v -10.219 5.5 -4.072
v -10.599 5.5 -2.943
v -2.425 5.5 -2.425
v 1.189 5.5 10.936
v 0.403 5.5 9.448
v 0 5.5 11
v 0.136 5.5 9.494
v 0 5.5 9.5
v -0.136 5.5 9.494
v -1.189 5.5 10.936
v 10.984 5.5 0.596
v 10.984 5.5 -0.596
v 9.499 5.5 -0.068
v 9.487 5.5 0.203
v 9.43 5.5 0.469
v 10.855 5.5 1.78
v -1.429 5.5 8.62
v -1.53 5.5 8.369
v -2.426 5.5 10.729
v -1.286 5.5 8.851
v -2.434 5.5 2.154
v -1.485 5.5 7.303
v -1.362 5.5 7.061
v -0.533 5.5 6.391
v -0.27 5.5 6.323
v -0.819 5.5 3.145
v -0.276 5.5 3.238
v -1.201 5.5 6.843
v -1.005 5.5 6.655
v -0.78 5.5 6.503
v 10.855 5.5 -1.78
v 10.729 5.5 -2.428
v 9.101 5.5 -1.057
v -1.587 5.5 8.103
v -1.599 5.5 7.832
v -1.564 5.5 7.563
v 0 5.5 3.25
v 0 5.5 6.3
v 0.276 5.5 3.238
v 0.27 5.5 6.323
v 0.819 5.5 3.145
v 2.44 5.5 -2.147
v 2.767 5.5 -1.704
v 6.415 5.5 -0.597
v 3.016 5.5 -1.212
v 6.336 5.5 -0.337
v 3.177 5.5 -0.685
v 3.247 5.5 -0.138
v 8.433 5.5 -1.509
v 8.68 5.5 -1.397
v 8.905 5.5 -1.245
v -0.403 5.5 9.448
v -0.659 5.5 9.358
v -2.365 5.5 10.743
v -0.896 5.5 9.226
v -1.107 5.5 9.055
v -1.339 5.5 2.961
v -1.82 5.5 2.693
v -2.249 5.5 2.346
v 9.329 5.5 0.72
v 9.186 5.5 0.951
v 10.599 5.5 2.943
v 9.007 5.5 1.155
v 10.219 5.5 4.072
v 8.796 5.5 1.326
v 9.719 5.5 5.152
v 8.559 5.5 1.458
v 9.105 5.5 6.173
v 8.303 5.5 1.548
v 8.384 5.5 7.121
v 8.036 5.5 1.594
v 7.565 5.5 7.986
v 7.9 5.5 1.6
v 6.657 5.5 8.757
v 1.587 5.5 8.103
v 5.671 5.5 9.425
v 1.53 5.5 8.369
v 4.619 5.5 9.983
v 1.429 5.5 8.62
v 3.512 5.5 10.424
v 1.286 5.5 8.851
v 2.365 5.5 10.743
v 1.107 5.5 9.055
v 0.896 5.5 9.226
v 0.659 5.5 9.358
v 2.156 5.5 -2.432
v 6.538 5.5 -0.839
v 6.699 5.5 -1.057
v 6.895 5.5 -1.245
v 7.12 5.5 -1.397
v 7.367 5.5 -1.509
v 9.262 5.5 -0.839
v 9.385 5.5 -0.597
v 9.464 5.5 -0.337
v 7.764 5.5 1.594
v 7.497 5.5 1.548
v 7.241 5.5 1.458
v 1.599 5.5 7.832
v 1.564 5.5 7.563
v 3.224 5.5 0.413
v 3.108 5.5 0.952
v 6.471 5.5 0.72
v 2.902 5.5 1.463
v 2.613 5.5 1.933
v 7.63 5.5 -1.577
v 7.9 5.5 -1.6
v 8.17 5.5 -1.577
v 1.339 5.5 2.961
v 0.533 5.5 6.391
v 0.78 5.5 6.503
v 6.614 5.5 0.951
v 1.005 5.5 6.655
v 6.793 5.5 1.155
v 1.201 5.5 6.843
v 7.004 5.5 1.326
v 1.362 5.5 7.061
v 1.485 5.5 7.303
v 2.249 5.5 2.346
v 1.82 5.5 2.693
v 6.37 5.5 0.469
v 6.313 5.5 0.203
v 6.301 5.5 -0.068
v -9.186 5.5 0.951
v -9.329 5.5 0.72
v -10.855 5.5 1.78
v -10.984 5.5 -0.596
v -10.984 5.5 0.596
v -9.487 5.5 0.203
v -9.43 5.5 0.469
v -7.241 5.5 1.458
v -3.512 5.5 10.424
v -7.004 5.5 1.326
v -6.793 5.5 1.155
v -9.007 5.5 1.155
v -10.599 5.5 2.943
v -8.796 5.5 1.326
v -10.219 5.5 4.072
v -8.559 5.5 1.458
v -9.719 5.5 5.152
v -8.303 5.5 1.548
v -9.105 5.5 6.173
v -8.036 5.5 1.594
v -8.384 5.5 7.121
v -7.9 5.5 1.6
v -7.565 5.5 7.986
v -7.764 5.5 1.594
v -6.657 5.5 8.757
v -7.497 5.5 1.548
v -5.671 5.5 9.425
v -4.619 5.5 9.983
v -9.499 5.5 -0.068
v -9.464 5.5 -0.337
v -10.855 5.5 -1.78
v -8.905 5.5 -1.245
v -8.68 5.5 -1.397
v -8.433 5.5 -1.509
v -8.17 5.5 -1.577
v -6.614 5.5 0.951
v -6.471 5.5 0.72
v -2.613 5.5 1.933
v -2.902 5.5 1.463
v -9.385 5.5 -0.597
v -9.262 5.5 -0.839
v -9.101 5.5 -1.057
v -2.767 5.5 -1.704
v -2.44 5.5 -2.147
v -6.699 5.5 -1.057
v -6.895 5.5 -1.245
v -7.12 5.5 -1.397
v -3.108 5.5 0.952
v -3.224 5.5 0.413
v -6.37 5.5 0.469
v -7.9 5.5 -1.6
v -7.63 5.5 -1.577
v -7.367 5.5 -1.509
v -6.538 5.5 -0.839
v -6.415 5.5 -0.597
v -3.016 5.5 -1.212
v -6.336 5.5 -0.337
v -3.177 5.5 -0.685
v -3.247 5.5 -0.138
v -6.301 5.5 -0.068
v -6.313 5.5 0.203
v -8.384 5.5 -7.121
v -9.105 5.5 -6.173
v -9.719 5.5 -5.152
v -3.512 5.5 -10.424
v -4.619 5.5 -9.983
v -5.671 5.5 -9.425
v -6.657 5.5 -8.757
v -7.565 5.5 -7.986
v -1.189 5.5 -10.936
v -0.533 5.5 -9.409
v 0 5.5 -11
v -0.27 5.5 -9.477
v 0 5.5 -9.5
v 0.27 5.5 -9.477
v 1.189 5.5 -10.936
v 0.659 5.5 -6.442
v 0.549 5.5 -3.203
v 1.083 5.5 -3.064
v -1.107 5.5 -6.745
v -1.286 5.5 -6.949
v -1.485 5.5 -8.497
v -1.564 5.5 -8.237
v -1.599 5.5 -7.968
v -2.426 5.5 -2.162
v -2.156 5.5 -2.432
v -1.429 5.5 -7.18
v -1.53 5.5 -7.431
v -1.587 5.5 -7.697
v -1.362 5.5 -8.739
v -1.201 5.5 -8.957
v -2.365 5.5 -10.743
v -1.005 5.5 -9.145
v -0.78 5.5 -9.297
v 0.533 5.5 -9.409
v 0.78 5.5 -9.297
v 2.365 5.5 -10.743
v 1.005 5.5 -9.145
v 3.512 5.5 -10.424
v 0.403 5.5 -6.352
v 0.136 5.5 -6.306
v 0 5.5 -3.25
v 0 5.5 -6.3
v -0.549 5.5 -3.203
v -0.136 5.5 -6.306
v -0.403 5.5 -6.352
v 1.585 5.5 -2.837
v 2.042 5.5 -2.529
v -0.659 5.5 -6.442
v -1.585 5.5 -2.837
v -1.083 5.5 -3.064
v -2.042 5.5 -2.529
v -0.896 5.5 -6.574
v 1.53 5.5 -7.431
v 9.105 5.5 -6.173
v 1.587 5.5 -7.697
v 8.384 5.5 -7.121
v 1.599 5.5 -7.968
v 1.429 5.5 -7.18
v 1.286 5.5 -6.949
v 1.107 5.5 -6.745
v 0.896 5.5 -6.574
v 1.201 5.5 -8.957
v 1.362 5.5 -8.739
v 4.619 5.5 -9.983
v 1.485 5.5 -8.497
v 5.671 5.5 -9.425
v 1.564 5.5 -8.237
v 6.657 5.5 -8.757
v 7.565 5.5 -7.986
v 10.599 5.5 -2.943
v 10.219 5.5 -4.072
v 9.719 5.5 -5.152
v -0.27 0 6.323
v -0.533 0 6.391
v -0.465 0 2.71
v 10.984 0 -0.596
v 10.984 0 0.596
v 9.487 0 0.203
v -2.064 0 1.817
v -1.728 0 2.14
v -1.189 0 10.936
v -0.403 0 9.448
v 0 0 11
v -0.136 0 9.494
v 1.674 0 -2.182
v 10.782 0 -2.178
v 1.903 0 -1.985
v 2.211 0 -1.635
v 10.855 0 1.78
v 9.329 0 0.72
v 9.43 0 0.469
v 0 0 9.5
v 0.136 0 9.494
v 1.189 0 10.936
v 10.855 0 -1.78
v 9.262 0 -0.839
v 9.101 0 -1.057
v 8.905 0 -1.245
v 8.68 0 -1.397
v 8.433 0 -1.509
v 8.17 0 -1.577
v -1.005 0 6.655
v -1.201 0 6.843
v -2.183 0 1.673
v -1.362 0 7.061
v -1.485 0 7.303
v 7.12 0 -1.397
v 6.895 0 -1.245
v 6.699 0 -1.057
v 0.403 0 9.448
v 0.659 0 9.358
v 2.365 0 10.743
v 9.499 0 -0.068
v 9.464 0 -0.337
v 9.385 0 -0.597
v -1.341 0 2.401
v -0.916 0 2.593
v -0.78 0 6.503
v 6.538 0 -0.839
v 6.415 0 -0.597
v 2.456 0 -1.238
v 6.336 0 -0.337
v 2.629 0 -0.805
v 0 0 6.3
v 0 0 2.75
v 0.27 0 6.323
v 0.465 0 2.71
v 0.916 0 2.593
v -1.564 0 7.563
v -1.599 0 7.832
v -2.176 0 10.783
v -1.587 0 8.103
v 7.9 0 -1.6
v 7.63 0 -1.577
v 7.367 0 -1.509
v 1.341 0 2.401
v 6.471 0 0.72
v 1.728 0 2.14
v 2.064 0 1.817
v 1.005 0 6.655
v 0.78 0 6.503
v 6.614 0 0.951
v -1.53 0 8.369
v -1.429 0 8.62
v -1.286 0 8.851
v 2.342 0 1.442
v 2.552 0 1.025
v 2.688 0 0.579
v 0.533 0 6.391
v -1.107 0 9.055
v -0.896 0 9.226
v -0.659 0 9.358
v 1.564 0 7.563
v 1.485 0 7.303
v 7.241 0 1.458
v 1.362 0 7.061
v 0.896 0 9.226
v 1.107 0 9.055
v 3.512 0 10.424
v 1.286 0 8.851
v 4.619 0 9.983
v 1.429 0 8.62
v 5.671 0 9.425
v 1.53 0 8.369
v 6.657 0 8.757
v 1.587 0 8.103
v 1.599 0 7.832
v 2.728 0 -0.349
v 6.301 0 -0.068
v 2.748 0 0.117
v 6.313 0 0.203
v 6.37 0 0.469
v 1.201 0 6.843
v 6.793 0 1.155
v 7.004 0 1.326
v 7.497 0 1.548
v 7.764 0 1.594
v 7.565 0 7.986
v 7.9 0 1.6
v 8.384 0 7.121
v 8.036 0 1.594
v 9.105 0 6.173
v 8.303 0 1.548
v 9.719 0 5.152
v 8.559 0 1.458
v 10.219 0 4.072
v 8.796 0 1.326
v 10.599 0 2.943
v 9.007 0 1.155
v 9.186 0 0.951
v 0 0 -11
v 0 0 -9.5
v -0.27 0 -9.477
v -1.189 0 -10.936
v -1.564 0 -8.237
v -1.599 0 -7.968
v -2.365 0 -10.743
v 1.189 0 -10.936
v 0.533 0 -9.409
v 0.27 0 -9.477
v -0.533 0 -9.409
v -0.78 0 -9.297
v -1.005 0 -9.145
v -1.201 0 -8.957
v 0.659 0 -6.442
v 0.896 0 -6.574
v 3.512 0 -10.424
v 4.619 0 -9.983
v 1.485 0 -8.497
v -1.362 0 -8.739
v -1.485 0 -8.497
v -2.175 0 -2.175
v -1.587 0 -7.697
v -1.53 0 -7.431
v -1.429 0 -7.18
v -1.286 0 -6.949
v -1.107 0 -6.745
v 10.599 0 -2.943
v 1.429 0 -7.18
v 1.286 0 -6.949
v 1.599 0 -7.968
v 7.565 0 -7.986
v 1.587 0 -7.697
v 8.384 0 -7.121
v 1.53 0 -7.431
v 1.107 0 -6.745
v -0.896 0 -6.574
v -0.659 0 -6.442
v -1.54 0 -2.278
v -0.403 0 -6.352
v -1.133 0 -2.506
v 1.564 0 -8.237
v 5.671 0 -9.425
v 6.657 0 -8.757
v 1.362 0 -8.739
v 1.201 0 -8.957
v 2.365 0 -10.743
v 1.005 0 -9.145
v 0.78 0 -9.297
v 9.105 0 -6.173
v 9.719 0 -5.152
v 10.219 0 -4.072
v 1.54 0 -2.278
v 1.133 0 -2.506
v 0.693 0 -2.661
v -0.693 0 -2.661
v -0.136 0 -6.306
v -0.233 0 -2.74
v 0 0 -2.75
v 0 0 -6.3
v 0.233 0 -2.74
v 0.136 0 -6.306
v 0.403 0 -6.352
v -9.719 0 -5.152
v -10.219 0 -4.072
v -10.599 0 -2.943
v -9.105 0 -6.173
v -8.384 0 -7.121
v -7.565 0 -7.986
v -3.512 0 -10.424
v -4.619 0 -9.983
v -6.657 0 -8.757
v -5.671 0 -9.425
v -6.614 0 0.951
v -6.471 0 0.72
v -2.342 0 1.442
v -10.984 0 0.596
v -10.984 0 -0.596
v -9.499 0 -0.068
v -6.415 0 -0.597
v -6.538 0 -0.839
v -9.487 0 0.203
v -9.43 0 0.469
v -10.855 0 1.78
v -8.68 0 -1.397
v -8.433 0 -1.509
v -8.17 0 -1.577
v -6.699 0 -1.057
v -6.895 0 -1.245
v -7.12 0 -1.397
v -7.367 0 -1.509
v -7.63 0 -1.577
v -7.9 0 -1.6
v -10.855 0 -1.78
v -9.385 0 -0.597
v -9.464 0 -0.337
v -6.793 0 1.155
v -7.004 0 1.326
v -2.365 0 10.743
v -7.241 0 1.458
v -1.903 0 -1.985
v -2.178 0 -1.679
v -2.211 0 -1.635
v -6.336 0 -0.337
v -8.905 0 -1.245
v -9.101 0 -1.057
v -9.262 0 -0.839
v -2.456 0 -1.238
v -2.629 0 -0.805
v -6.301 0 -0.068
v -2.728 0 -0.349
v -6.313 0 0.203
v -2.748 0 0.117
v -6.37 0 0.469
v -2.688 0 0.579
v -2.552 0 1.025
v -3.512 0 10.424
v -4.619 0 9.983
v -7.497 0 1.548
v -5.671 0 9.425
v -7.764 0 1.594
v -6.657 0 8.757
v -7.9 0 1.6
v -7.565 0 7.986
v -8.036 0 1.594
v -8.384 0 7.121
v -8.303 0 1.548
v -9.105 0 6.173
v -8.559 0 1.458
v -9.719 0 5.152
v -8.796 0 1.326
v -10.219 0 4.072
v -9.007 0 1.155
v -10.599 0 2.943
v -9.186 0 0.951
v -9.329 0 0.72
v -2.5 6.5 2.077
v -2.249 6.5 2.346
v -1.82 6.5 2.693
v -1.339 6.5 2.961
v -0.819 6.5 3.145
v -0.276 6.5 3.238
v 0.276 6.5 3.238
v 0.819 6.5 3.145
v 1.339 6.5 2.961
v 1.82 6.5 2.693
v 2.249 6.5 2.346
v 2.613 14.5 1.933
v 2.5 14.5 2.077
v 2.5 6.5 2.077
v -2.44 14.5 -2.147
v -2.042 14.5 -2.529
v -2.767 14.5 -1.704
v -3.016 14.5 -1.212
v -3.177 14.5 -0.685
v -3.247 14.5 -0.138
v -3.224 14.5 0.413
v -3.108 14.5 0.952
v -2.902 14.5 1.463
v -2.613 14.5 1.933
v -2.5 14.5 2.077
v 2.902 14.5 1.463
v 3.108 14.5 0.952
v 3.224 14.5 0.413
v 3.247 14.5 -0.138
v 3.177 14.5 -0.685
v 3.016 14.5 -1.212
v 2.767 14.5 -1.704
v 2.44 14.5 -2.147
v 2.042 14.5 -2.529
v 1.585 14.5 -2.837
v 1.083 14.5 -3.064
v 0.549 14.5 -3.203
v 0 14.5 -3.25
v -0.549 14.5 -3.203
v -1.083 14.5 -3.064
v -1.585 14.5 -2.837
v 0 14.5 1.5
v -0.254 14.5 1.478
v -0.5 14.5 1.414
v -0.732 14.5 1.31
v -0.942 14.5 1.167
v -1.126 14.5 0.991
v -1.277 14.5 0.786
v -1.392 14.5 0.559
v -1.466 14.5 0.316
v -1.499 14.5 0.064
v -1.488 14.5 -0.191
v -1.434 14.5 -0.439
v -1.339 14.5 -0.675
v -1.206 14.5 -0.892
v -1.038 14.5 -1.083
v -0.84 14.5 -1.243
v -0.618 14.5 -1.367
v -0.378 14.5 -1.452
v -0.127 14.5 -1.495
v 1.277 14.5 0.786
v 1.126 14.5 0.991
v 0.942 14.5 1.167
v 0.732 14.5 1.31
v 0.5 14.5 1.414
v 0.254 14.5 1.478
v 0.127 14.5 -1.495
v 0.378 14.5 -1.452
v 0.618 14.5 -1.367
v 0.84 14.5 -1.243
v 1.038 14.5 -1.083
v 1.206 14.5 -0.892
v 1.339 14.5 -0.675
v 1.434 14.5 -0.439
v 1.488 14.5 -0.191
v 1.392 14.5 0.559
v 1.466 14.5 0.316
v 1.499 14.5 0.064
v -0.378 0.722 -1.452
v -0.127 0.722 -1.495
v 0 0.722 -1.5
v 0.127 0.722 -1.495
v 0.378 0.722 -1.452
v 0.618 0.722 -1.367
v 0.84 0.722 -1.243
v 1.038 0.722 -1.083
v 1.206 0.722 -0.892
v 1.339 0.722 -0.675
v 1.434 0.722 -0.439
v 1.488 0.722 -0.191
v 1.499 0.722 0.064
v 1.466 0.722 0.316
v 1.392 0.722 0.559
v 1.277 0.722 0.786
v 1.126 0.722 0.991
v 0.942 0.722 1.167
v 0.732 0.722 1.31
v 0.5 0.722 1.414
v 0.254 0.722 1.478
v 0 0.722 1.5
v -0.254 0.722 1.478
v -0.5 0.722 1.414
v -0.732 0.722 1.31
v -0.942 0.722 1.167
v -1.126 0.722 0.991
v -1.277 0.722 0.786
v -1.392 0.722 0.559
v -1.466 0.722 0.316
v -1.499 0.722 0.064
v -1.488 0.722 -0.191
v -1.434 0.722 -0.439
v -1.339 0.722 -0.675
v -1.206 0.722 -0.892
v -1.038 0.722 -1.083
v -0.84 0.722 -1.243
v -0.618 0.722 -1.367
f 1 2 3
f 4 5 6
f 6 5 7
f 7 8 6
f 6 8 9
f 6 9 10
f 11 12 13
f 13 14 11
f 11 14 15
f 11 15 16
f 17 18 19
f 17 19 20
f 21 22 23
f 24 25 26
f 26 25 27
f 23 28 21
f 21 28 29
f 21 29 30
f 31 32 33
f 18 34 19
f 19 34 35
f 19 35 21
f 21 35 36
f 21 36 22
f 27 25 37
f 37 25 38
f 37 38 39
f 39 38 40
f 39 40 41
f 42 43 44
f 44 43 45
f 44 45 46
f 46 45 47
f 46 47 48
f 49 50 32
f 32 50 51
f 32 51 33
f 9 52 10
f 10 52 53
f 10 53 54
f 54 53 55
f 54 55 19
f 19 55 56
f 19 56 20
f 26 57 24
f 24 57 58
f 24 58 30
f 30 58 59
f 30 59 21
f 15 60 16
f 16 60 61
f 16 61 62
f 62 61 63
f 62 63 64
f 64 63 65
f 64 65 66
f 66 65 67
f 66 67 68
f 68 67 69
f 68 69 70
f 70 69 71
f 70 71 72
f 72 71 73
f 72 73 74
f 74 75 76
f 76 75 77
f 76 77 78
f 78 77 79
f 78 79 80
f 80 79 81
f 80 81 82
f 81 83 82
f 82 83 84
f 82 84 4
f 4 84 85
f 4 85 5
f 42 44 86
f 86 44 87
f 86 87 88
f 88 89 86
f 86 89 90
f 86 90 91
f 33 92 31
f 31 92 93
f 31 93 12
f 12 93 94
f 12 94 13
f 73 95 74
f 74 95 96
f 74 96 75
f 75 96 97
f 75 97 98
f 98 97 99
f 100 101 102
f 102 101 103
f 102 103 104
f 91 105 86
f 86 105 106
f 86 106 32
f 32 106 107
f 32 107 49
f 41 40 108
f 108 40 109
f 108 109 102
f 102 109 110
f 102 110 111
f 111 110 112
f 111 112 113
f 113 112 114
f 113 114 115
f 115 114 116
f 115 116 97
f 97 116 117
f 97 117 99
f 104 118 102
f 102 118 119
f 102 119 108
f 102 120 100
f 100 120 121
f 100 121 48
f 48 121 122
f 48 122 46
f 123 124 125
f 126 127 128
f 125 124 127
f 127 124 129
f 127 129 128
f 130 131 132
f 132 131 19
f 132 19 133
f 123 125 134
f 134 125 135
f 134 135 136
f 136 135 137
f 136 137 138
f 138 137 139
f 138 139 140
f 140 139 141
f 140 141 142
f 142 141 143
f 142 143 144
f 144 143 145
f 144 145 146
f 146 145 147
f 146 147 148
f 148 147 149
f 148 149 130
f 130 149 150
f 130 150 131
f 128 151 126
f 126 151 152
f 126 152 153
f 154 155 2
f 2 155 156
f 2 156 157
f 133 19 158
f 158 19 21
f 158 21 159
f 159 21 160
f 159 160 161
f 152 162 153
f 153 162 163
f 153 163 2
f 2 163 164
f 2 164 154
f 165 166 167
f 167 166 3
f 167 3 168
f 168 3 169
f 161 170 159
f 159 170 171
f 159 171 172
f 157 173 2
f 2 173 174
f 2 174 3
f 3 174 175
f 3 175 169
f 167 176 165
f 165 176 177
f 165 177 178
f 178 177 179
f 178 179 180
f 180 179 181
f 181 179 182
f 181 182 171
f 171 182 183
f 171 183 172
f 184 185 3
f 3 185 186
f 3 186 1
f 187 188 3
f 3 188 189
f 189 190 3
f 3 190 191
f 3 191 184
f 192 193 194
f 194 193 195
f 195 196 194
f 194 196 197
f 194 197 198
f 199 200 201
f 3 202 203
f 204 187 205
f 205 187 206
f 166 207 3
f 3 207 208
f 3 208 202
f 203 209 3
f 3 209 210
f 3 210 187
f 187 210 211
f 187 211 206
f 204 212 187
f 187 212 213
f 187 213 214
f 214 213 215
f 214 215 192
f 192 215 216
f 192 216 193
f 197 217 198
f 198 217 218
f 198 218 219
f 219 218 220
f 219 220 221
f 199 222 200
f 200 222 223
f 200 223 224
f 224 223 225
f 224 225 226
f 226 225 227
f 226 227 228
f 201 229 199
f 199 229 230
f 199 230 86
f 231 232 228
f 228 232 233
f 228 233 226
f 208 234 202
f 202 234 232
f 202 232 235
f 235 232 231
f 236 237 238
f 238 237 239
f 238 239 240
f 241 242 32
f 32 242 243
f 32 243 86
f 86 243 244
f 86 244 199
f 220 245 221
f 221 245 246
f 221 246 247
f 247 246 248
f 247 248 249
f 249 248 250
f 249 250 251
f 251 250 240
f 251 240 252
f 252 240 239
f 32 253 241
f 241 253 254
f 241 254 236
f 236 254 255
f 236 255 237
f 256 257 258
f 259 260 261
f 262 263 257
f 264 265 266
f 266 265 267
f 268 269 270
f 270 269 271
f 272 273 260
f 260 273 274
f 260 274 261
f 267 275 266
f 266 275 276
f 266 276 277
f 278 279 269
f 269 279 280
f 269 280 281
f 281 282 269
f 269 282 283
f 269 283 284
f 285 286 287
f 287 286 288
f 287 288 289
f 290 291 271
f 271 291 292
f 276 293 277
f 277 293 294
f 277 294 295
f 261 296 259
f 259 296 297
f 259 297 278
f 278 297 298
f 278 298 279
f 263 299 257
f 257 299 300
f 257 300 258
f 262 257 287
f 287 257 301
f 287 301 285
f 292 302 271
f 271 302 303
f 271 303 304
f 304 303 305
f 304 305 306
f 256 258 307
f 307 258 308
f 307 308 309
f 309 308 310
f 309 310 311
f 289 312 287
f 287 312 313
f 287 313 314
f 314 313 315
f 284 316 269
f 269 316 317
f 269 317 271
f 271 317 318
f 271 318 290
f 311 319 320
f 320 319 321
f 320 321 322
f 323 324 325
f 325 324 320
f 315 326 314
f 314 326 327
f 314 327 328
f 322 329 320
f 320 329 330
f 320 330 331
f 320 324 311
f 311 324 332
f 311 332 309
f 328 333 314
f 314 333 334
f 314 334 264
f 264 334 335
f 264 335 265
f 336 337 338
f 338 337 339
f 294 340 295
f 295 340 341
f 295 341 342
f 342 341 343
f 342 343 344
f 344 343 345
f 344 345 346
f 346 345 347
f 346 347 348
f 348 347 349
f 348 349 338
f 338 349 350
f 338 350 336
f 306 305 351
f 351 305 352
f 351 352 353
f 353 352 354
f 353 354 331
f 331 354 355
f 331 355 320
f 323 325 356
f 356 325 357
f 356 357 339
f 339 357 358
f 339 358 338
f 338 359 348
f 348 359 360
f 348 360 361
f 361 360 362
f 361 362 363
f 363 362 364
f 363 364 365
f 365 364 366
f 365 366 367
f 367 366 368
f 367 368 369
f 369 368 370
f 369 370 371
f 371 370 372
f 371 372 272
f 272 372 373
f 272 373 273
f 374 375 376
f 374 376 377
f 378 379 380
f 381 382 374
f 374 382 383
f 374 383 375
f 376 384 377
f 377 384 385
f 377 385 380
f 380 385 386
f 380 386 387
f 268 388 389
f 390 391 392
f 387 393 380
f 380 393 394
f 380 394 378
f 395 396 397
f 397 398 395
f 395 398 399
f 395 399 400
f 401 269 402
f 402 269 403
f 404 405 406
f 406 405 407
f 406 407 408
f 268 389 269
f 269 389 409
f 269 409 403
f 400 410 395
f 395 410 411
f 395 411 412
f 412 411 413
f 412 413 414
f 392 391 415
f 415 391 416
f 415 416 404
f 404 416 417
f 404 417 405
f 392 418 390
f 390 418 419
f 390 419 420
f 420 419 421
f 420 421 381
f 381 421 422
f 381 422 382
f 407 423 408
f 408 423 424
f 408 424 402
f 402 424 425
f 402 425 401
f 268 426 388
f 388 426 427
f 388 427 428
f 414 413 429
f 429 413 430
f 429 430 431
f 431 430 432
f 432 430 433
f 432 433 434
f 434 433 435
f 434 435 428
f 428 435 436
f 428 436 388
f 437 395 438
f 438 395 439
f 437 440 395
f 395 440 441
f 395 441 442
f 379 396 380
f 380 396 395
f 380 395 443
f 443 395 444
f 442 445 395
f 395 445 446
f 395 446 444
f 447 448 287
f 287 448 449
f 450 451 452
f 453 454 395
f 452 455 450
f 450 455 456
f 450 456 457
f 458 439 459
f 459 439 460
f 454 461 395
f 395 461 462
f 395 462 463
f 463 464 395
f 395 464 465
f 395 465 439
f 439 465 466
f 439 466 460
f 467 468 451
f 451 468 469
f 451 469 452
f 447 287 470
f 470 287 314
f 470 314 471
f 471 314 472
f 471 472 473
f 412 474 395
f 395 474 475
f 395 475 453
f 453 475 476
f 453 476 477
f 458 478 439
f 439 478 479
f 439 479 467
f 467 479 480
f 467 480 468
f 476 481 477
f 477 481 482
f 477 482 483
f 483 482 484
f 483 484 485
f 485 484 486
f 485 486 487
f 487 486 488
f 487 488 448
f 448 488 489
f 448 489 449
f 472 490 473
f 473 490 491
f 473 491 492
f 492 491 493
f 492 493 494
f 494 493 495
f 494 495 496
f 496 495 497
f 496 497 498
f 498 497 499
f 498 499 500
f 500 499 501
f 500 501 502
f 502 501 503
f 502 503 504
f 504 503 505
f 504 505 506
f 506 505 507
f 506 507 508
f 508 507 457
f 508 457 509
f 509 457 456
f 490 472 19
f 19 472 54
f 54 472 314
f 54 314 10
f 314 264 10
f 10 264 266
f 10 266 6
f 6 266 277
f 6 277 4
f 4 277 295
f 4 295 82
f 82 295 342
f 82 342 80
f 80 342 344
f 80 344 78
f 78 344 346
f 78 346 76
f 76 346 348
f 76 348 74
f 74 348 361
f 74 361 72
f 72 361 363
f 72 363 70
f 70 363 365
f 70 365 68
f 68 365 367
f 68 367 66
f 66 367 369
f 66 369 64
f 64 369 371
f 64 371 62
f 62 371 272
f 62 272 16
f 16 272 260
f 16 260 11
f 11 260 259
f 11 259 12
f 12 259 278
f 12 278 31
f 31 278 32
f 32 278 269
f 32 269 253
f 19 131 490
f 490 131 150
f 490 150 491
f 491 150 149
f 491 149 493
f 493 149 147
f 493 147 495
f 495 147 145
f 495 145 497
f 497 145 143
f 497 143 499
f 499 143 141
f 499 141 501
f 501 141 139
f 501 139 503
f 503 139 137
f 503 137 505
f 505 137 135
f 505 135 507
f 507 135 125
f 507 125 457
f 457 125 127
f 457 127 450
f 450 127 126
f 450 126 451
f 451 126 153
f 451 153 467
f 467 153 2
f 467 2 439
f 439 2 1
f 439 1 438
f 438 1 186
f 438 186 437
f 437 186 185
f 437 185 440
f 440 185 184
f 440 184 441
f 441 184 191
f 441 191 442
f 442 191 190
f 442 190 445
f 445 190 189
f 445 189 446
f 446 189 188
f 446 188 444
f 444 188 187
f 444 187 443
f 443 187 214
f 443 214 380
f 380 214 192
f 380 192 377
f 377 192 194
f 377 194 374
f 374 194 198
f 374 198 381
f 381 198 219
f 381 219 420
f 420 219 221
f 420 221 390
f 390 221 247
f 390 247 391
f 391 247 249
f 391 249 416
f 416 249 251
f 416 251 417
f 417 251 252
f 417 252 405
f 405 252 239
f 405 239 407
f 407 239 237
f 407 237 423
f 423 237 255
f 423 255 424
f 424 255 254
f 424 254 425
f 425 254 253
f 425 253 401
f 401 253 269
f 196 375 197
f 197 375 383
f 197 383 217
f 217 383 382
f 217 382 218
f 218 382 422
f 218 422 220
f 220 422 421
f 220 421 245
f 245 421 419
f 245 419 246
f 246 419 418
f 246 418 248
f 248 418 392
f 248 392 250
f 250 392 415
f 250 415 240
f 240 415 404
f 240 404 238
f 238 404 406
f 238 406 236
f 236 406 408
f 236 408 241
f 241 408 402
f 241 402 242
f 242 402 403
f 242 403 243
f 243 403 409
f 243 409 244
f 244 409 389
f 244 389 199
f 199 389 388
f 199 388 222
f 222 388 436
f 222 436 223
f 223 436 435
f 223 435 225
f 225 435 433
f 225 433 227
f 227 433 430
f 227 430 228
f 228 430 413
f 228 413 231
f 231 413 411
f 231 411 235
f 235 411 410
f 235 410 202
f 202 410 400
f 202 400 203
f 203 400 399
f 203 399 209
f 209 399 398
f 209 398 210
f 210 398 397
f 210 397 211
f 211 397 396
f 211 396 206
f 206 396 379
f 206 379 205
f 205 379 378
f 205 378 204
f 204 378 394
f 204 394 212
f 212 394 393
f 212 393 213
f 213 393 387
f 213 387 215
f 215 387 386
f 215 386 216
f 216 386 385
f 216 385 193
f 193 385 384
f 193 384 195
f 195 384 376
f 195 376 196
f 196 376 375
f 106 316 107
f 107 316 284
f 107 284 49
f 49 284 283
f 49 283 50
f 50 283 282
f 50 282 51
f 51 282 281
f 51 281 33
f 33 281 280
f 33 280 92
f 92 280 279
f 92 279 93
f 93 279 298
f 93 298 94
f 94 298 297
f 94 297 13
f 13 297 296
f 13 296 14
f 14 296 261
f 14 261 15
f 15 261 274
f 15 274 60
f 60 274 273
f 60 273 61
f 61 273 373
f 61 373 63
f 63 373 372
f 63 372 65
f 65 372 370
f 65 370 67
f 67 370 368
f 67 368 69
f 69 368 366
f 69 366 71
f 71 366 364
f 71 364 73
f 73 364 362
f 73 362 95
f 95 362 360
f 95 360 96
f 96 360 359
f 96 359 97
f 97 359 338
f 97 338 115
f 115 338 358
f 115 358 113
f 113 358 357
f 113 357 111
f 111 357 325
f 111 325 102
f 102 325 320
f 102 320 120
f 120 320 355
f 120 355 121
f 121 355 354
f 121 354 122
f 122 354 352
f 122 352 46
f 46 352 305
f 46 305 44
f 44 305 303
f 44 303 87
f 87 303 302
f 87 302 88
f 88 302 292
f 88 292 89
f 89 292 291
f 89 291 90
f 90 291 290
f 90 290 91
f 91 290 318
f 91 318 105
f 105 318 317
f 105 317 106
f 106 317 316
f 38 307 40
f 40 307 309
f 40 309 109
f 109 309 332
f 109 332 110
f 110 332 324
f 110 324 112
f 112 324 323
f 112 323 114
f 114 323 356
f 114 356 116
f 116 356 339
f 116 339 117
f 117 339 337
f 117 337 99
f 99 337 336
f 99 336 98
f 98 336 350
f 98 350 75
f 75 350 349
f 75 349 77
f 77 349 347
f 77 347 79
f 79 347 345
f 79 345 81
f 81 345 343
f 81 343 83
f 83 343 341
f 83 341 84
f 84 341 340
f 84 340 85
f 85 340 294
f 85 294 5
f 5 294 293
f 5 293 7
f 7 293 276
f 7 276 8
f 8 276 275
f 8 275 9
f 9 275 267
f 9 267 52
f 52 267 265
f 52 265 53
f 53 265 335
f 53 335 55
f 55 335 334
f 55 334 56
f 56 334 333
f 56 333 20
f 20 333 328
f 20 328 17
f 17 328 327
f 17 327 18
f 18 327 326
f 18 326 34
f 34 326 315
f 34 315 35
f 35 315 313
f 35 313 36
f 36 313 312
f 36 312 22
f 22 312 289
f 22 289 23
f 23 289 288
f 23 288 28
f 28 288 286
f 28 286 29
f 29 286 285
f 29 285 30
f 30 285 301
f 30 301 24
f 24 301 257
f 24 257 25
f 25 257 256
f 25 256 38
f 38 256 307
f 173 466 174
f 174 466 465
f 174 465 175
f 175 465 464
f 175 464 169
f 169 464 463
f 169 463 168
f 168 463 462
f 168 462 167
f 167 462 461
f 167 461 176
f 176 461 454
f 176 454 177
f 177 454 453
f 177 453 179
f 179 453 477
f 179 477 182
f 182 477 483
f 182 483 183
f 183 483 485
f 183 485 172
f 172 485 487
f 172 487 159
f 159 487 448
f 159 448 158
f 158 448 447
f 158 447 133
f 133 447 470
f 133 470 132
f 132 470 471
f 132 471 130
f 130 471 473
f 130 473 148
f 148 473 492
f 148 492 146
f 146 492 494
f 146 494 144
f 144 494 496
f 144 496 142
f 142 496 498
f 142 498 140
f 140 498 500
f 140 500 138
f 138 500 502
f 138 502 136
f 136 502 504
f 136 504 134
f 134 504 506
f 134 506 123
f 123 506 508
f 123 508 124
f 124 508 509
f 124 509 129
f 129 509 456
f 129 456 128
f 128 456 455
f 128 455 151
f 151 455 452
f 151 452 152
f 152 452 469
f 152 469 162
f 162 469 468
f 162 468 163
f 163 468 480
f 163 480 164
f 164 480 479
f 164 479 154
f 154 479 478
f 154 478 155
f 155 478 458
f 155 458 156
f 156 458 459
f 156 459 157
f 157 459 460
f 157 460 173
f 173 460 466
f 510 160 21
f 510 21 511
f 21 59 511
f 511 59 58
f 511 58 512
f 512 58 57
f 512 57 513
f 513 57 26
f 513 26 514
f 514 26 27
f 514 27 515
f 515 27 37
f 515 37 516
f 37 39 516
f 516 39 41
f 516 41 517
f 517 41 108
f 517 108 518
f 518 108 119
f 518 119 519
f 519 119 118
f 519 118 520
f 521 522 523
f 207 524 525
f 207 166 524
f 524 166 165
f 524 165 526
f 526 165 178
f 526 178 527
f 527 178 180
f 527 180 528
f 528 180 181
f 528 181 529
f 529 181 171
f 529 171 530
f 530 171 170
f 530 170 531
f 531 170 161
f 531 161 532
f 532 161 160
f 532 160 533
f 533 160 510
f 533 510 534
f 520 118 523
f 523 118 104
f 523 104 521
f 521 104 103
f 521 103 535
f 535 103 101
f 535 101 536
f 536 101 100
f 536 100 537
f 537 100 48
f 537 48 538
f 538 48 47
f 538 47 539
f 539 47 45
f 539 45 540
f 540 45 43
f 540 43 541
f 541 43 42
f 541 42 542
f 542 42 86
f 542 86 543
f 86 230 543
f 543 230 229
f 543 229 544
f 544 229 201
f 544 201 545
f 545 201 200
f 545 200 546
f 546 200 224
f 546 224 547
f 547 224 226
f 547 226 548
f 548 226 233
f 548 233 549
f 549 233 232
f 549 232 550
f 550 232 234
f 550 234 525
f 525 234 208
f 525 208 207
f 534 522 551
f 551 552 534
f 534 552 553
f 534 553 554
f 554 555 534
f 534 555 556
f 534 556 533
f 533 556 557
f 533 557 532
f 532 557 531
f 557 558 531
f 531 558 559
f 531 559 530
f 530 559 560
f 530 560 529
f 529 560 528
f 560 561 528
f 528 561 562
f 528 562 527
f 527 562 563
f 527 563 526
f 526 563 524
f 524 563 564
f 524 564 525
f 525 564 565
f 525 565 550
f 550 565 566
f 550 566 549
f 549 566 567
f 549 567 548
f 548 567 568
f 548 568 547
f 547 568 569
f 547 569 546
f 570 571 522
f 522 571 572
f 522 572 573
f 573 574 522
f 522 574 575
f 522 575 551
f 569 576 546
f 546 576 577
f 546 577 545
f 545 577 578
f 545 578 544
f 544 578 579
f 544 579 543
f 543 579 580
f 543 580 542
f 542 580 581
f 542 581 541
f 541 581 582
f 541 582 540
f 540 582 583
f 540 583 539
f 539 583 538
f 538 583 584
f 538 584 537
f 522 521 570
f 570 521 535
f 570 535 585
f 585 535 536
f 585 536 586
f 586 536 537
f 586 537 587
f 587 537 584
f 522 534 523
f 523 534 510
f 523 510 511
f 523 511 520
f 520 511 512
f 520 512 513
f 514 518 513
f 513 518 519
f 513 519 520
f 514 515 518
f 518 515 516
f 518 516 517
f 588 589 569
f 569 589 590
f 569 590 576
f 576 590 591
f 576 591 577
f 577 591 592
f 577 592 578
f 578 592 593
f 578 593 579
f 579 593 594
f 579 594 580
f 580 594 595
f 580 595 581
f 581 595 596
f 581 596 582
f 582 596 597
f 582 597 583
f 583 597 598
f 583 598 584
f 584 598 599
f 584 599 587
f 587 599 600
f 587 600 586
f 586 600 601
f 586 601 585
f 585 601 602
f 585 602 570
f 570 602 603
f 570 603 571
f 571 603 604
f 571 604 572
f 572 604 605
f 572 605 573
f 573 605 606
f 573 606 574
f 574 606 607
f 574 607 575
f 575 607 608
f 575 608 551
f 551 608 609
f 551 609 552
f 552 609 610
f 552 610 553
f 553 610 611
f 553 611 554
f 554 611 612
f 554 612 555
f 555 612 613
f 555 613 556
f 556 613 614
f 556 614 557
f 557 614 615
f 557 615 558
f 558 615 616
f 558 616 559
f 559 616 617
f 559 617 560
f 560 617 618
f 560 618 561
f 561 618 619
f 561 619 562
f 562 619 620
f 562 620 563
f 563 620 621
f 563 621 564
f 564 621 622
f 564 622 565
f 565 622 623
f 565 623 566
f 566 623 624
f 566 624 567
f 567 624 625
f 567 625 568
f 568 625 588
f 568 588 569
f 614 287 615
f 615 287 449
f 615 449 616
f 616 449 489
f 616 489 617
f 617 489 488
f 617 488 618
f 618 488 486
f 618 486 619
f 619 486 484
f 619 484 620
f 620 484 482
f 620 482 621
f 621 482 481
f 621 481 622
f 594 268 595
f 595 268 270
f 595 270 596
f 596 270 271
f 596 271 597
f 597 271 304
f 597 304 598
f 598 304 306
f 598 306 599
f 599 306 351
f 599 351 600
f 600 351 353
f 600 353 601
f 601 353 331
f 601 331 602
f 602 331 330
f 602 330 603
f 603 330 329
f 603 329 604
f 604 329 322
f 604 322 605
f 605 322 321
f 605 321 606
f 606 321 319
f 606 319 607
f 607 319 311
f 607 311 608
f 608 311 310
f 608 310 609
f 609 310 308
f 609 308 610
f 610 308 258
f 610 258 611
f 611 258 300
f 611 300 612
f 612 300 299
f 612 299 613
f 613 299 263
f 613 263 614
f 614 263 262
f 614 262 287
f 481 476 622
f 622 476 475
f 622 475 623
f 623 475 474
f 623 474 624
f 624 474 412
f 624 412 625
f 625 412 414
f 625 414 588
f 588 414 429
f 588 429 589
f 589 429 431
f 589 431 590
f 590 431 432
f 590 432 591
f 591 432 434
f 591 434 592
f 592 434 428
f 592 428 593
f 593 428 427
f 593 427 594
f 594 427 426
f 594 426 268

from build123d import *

# Parameters (mm, degrees)
SKETCH1_R           = 11
SKETCH1_R_2         = 1.6
BOSS_EXTRUDE1_DEPTH = 5.5
SKETCH2_R           = 3.25
BOSS_EXTRUDE3_DEPTH = 9
CUT_EXTRUDE2_START  = -8
CUT_EXTRUDE2_DEPTH  = 8
SKETCH5_R           = 1.5
CUT_EXTRUDE3_DEPTH  = 22.266170318
CHAMFER1_SIZE       = 1.25
CHAMFER1_SIZE2      = 0.721687836


with BuildPart() as part:
    # Sketch1 → Boss-Extrude1 (new body)
    with BuildSketch(Plane(origin=(0, 0, 0), x_dir=(1, 0, 0), z_dir=(0, 1, 0))):
        with Locations(Location((0, 0, 0), (0, 0, 270))):
            Circle(SKETCH1_R)
        with Locations(Location((0, 7.9, 0), (0, 0, 270))):
            Circle(SKETCH1_R_2, mode=Mode.SUBTRACT)
        with Locations(Location((7.9, 0, 0), (0, 0, 270))):
            Circle(SKETCH1_R_2, mode=Mode.SUBTRACT)
        with Locations(Location((0, -7.9, 0), (0, 0, 270))):
            Circle(SKETCH1_R_2, mode=Mode.SUBTRACT)
        with Locations(Location((-7.9, 0, 0), (0, 0, 270))):
            Circle(SKETCH1_R_2, mode=Mode.SUBTRACT)
    extrude(amount=BOSS_EXTRUDE1_DEPTH)

    # Sketch2 → Boss-Extrude3 (add)
    with BuildSketch(Plane(origin=(0, 5.5, 0), x_dir=(1, 0, 0), z_dir=(0, 1, 0))):
        with Locations(Location((0, 0, 0), (0, 0, 270))):
            Circle(SKETCH2_R)
    extrude(amount=BOSS_EXTRUDE3_DEPTH)

    # Sketch4 → Cut-Extrude2 (cut)
    with BuildSketch(Plane(origin=(0, 14.5, 0), x_dir=(1, 0, 0), z_dir=(0, 1, 0)).offset(CUT_EXTRUDE2_START)):
        with BuildLine():
            Line((2.5, -2.076655966), (-2.5, -2.076655966))
            ThreePointArc((-2.5, -2.076655966), (0, -3.25), (2.5, -2.076655966))
        make_face()
    extrude(amount=CUT_EXTRUDE2_DEPTH, mode=Mode.SUBTRACT)

    # Sketch5 → Cut-Extrude3 (cut, through all)
    with BuildSketch(Plane(origin=(0, 14.5, 0), x_dir=(1, 0, 0), z_dir=(0, 1, 0))):
        with Locations(Location((0, 0, 0), (0, 0, 270))):
            Circle(SKETCH5_R)
    extrude(amount=-CUT_EXTRUDE3_DEPTH, mode=Mode.SUBTRACT)

    # Chamfer1
    chamfer1_edges = [part.edges().sort_by_distance(p)[0] for p in [
        (0, 0, -1.5),
    ]]
    chamfer1_side = [part.faces().sort_by_distance(p)[0] for p in [
        (0, 0, -10.688873016),
    ]]
    chamfer(chamfer1_edges, length=CHAMFER1_SIZE, length2=CHAMFER1_SIZE2, reference=chamfer1_side[0])


solid = part.part
